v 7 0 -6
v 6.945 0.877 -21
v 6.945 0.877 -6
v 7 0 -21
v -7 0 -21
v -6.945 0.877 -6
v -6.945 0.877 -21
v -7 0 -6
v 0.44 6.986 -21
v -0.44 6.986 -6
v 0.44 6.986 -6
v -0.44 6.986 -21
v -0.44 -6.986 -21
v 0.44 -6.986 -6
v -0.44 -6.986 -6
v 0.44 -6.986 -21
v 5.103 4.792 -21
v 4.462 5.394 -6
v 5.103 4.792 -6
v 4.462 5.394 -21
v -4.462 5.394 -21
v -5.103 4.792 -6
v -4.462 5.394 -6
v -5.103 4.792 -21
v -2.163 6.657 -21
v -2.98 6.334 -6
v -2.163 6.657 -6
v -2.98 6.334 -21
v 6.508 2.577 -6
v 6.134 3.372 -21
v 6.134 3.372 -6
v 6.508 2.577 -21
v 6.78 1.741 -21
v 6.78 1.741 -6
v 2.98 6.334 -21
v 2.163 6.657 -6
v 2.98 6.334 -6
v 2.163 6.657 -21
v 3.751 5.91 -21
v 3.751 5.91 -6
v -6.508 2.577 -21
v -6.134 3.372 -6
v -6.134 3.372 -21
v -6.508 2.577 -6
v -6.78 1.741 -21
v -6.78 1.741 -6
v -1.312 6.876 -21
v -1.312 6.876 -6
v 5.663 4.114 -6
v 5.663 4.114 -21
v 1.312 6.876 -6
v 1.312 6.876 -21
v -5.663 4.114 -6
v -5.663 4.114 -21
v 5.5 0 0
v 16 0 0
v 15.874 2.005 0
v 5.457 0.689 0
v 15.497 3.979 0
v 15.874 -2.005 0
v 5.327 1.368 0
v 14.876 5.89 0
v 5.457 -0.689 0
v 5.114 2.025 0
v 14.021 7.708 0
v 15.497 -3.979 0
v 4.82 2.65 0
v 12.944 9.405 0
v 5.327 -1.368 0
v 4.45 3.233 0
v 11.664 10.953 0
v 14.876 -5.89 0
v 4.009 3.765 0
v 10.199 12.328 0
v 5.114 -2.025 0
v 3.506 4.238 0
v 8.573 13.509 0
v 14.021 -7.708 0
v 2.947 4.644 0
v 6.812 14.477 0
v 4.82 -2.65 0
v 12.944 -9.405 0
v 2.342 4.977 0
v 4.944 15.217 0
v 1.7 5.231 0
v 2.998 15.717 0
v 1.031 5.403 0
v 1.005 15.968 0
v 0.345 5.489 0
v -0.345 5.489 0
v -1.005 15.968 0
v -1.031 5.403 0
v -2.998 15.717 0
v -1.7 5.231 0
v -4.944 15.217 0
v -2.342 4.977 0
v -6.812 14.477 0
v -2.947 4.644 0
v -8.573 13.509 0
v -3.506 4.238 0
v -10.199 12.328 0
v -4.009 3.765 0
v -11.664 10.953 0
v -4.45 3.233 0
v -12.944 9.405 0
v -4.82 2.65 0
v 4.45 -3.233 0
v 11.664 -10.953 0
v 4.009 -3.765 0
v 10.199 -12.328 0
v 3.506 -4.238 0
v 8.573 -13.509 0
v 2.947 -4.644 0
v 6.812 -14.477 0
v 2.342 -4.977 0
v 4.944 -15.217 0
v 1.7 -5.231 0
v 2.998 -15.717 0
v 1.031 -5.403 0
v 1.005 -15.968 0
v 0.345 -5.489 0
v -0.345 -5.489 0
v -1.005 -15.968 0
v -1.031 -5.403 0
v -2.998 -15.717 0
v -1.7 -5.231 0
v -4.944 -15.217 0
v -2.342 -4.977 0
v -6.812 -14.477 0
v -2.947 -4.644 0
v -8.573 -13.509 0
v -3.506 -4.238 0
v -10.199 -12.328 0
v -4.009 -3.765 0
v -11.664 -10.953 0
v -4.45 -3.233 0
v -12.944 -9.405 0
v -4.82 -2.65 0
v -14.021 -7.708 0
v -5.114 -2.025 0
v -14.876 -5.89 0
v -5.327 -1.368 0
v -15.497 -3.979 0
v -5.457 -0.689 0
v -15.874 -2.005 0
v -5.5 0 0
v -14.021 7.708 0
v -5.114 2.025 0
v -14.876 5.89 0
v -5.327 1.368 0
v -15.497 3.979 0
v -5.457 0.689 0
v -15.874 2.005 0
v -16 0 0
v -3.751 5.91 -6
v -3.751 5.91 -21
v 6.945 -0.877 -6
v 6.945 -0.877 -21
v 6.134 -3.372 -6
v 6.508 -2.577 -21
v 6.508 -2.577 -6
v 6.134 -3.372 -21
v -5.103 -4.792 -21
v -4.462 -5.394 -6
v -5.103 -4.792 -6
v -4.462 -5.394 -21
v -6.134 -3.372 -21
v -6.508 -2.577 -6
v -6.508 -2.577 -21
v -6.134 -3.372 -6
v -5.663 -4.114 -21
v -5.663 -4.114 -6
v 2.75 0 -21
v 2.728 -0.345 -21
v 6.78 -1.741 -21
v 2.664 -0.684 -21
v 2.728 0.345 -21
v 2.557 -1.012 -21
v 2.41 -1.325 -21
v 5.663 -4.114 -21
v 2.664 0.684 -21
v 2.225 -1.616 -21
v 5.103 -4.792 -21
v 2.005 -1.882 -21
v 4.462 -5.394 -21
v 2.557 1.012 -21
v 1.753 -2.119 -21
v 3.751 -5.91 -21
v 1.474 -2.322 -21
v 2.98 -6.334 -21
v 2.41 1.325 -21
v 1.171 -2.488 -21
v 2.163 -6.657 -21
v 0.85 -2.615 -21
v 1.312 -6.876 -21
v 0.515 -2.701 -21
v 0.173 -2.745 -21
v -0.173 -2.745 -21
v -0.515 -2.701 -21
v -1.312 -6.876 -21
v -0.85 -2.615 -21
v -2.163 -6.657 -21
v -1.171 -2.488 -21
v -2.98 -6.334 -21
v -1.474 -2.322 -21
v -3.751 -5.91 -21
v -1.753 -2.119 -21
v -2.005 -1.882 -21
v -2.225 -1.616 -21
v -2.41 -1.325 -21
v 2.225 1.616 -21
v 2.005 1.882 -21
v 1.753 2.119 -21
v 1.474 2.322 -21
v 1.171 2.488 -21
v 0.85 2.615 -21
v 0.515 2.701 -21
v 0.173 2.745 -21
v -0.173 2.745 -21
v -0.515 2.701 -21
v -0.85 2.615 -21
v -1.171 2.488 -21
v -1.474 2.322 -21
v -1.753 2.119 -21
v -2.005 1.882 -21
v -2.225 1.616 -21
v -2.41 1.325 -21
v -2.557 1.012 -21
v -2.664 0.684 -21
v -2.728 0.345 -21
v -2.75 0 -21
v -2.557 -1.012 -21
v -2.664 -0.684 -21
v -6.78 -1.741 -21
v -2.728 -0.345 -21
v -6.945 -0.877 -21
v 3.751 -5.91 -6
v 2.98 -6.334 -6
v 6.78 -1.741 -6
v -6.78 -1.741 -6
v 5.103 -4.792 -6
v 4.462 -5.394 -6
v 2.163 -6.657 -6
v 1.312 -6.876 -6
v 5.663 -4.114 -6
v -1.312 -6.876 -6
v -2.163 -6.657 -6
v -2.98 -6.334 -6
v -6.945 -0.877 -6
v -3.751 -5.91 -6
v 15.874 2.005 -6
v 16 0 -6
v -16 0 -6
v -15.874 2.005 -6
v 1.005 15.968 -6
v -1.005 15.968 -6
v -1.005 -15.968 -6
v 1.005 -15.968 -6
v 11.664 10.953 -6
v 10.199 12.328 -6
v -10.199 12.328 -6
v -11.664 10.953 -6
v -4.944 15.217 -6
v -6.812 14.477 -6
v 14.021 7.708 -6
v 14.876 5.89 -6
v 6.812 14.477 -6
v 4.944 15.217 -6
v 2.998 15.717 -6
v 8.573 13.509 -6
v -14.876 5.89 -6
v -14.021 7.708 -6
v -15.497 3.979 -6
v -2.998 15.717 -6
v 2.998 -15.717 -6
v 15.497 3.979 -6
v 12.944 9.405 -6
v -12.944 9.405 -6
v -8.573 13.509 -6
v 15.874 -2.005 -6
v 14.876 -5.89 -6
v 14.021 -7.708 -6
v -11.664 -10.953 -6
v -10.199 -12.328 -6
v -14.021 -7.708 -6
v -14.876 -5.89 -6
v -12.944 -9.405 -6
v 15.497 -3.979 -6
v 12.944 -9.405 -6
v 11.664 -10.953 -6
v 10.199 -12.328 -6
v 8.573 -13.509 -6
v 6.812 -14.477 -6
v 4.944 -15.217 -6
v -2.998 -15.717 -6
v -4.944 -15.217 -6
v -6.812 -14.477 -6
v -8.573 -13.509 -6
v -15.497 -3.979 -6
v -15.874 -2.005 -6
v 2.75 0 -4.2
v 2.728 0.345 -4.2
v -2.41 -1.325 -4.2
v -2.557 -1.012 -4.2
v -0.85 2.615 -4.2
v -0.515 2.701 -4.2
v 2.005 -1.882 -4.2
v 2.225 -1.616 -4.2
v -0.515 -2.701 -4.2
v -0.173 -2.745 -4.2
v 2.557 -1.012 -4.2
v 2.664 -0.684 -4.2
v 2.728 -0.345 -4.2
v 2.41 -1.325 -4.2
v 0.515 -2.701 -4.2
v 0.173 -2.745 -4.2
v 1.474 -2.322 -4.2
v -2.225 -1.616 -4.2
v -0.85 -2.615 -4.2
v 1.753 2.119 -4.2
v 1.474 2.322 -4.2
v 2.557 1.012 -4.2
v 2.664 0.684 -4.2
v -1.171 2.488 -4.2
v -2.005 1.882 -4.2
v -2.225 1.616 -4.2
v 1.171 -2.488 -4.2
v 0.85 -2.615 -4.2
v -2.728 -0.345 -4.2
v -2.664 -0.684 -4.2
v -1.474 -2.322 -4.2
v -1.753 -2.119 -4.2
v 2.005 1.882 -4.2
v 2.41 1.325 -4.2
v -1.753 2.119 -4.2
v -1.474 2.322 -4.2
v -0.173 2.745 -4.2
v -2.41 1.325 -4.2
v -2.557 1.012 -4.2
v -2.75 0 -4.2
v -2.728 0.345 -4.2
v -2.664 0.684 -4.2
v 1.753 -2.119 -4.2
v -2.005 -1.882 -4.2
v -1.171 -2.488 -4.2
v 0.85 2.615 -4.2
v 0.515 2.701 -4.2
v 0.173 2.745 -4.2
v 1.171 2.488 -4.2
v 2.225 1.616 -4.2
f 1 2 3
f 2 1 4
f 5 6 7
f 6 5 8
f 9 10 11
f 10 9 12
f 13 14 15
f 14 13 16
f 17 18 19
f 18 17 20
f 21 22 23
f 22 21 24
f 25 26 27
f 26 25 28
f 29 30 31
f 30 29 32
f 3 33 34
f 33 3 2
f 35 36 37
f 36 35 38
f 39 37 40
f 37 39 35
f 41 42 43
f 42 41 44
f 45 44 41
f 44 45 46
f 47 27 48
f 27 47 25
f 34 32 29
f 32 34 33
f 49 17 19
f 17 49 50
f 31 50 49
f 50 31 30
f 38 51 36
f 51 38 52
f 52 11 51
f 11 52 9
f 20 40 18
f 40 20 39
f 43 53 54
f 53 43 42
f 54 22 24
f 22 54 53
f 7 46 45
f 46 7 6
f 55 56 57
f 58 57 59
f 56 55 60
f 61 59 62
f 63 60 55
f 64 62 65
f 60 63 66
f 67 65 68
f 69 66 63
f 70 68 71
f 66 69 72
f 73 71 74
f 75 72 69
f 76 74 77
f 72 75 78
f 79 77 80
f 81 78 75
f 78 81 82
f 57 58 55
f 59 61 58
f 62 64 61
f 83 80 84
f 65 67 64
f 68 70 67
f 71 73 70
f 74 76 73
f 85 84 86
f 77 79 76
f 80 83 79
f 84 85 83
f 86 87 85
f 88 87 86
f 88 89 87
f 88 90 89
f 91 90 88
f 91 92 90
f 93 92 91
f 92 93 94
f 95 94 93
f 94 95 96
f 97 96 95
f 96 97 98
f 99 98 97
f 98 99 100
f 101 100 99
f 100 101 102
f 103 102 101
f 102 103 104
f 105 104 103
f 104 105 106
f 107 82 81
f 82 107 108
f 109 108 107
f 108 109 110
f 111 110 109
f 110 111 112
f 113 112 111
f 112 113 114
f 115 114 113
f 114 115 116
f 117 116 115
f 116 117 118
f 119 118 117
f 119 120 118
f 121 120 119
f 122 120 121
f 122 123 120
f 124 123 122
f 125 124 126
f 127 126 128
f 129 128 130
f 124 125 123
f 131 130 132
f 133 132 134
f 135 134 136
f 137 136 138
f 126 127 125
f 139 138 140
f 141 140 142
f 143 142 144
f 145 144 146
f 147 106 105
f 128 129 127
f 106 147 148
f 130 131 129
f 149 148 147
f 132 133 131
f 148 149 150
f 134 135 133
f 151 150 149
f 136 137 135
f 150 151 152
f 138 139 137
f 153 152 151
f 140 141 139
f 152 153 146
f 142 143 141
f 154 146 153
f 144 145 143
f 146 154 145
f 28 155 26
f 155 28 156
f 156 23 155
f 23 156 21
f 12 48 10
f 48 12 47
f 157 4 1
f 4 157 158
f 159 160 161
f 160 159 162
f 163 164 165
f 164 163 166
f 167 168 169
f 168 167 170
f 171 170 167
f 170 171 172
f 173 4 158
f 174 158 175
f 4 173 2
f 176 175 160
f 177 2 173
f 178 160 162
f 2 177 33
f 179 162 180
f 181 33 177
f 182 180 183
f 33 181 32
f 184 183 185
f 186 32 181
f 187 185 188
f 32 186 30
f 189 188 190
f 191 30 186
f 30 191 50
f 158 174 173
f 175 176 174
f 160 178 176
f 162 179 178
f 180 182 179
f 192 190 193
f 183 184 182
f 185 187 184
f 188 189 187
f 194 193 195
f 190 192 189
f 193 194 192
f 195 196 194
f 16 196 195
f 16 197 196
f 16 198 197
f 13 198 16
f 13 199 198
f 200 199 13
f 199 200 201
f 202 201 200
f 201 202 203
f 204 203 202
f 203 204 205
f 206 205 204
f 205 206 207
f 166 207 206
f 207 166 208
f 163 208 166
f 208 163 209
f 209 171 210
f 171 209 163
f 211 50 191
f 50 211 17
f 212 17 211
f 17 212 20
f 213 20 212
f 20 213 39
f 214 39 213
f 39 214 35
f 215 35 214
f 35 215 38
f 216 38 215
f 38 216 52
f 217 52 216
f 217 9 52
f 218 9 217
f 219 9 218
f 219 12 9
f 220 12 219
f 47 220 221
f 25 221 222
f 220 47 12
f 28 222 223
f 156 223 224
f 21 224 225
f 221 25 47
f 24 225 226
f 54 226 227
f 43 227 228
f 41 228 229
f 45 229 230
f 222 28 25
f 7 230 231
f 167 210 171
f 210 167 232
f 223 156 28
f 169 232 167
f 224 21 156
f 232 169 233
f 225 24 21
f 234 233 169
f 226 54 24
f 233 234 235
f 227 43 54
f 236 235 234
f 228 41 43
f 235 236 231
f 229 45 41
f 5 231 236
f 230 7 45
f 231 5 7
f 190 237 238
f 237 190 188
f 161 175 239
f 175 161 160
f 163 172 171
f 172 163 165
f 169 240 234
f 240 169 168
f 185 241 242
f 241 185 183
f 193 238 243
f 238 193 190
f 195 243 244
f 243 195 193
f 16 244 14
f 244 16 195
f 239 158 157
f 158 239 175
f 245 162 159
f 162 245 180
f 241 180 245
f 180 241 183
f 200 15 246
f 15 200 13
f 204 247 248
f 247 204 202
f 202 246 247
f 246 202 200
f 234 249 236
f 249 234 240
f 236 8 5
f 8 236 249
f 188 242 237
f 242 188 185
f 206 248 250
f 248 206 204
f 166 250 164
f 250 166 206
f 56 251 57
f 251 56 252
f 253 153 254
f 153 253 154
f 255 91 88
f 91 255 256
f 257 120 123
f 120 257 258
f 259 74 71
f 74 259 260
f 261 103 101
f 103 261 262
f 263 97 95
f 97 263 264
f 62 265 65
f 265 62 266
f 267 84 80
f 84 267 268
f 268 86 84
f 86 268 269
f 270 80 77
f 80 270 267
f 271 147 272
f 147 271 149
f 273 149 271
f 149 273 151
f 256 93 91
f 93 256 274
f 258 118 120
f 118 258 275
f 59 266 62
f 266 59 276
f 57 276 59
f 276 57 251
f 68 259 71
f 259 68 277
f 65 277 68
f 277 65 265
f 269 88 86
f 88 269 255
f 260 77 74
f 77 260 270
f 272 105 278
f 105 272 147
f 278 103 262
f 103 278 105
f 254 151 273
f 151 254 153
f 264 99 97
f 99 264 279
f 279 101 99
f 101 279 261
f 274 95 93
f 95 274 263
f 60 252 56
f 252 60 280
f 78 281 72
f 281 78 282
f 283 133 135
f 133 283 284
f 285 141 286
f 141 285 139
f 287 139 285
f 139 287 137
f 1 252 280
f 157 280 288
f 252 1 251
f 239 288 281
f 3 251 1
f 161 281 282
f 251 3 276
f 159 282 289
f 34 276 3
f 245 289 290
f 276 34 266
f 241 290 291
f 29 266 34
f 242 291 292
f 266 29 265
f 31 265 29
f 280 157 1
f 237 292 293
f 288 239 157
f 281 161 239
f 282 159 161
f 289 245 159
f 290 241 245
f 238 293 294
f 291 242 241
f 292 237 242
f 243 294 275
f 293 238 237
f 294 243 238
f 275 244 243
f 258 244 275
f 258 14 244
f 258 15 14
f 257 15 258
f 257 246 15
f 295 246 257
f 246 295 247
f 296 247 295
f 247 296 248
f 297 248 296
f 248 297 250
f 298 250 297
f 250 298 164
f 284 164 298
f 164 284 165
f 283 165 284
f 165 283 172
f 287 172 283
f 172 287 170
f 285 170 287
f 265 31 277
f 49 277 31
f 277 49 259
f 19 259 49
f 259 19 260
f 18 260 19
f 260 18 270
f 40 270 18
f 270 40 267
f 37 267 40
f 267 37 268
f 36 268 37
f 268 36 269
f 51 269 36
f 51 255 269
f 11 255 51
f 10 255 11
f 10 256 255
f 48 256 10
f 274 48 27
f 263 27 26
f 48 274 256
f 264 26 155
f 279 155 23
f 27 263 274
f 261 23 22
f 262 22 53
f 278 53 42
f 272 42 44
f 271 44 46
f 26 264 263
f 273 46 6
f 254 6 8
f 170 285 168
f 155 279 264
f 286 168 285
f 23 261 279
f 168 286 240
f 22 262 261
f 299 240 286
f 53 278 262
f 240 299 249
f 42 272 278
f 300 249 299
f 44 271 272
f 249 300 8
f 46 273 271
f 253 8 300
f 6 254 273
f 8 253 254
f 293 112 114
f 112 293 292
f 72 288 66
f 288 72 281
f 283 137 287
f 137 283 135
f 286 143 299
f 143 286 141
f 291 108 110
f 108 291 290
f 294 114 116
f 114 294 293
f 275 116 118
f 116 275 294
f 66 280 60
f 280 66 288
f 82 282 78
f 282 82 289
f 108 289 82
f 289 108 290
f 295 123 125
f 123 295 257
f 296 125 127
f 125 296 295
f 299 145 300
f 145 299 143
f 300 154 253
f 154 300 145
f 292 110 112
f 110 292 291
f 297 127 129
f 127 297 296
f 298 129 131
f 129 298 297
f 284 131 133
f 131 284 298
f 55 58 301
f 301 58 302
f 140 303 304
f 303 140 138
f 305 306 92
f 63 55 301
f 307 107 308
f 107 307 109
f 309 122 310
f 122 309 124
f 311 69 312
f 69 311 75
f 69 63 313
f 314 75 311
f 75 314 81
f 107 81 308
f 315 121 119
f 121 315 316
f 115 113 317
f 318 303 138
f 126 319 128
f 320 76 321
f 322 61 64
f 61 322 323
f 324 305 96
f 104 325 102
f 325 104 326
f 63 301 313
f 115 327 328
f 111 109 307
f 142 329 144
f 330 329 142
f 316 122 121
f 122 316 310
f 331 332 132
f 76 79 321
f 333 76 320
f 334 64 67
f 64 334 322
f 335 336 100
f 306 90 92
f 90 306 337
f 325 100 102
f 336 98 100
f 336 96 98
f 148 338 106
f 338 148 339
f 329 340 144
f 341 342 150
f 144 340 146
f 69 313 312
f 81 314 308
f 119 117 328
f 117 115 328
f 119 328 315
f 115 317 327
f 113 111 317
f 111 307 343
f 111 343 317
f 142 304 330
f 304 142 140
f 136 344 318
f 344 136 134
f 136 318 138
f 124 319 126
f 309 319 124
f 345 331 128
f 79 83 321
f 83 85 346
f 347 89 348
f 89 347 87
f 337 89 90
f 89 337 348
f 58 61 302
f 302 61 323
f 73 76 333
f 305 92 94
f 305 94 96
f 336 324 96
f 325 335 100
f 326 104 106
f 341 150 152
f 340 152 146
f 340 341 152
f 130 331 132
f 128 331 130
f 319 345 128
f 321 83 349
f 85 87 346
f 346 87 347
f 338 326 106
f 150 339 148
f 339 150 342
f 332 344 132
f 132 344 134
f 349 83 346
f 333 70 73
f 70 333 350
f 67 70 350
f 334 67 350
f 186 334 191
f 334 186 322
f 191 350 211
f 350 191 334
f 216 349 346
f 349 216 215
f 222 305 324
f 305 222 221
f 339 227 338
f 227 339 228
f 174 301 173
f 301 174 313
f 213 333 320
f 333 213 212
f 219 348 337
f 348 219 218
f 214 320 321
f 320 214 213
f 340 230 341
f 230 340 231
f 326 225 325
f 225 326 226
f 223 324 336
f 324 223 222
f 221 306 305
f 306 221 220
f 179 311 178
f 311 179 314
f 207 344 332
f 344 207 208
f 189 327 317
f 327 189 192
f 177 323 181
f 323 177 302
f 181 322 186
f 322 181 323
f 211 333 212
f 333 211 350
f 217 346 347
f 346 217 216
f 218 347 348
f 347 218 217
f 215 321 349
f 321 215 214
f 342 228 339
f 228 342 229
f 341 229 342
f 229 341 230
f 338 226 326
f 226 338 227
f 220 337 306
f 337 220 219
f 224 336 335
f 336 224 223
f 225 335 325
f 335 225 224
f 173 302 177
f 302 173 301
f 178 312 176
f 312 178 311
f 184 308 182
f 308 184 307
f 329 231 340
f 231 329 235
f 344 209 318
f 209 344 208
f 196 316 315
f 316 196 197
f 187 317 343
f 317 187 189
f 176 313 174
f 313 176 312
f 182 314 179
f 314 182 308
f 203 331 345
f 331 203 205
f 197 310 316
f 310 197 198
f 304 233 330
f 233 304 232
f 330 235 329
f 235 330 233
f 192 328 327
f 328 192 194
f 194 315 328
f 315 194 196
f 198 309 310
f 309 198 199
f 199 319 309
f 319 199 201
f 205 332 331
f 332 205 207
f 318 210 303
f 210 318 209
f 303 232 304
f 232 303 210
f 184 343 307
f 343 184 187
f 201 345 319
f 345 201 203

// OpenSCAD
$fn = 50;


difference() {
	union() {
		translate(v = [0, 0, -21.0000000000]) {
			cylinder(h = 21, r = 7.0000000000);
		}
		translate(v = [0, 0, -6.0000000000]) {
			cylinder(h = 6, r = 16.0000000000);
		}
	}
	union() {
		translate(v = [0, 0, 0]) {
			rotate(a = [0, 0, 0]) {
				difference() {
					union() {
						#translate(v = [0, 0, -21.0000000000]) {
							cylinder(h = 21, r = 2.2500000000);
						}
						#translate(v = [0, 0, -4.2000000000]) {
							cylinder(h = 4.2000000000, r1 = 2.7500000000, r2 = 5.5000000000);
						}
						#translate(v = [0, 0, -21.0000000000]) {
							cylinder(h = 21, r = 2.7500000000);
						}
						#translate(v = [0, 0, -21.0000000000]) {
							cylinder(h = 21, r = 2.2500000000);
						}
					}
					union();
				}
			}
		}
	}
}
